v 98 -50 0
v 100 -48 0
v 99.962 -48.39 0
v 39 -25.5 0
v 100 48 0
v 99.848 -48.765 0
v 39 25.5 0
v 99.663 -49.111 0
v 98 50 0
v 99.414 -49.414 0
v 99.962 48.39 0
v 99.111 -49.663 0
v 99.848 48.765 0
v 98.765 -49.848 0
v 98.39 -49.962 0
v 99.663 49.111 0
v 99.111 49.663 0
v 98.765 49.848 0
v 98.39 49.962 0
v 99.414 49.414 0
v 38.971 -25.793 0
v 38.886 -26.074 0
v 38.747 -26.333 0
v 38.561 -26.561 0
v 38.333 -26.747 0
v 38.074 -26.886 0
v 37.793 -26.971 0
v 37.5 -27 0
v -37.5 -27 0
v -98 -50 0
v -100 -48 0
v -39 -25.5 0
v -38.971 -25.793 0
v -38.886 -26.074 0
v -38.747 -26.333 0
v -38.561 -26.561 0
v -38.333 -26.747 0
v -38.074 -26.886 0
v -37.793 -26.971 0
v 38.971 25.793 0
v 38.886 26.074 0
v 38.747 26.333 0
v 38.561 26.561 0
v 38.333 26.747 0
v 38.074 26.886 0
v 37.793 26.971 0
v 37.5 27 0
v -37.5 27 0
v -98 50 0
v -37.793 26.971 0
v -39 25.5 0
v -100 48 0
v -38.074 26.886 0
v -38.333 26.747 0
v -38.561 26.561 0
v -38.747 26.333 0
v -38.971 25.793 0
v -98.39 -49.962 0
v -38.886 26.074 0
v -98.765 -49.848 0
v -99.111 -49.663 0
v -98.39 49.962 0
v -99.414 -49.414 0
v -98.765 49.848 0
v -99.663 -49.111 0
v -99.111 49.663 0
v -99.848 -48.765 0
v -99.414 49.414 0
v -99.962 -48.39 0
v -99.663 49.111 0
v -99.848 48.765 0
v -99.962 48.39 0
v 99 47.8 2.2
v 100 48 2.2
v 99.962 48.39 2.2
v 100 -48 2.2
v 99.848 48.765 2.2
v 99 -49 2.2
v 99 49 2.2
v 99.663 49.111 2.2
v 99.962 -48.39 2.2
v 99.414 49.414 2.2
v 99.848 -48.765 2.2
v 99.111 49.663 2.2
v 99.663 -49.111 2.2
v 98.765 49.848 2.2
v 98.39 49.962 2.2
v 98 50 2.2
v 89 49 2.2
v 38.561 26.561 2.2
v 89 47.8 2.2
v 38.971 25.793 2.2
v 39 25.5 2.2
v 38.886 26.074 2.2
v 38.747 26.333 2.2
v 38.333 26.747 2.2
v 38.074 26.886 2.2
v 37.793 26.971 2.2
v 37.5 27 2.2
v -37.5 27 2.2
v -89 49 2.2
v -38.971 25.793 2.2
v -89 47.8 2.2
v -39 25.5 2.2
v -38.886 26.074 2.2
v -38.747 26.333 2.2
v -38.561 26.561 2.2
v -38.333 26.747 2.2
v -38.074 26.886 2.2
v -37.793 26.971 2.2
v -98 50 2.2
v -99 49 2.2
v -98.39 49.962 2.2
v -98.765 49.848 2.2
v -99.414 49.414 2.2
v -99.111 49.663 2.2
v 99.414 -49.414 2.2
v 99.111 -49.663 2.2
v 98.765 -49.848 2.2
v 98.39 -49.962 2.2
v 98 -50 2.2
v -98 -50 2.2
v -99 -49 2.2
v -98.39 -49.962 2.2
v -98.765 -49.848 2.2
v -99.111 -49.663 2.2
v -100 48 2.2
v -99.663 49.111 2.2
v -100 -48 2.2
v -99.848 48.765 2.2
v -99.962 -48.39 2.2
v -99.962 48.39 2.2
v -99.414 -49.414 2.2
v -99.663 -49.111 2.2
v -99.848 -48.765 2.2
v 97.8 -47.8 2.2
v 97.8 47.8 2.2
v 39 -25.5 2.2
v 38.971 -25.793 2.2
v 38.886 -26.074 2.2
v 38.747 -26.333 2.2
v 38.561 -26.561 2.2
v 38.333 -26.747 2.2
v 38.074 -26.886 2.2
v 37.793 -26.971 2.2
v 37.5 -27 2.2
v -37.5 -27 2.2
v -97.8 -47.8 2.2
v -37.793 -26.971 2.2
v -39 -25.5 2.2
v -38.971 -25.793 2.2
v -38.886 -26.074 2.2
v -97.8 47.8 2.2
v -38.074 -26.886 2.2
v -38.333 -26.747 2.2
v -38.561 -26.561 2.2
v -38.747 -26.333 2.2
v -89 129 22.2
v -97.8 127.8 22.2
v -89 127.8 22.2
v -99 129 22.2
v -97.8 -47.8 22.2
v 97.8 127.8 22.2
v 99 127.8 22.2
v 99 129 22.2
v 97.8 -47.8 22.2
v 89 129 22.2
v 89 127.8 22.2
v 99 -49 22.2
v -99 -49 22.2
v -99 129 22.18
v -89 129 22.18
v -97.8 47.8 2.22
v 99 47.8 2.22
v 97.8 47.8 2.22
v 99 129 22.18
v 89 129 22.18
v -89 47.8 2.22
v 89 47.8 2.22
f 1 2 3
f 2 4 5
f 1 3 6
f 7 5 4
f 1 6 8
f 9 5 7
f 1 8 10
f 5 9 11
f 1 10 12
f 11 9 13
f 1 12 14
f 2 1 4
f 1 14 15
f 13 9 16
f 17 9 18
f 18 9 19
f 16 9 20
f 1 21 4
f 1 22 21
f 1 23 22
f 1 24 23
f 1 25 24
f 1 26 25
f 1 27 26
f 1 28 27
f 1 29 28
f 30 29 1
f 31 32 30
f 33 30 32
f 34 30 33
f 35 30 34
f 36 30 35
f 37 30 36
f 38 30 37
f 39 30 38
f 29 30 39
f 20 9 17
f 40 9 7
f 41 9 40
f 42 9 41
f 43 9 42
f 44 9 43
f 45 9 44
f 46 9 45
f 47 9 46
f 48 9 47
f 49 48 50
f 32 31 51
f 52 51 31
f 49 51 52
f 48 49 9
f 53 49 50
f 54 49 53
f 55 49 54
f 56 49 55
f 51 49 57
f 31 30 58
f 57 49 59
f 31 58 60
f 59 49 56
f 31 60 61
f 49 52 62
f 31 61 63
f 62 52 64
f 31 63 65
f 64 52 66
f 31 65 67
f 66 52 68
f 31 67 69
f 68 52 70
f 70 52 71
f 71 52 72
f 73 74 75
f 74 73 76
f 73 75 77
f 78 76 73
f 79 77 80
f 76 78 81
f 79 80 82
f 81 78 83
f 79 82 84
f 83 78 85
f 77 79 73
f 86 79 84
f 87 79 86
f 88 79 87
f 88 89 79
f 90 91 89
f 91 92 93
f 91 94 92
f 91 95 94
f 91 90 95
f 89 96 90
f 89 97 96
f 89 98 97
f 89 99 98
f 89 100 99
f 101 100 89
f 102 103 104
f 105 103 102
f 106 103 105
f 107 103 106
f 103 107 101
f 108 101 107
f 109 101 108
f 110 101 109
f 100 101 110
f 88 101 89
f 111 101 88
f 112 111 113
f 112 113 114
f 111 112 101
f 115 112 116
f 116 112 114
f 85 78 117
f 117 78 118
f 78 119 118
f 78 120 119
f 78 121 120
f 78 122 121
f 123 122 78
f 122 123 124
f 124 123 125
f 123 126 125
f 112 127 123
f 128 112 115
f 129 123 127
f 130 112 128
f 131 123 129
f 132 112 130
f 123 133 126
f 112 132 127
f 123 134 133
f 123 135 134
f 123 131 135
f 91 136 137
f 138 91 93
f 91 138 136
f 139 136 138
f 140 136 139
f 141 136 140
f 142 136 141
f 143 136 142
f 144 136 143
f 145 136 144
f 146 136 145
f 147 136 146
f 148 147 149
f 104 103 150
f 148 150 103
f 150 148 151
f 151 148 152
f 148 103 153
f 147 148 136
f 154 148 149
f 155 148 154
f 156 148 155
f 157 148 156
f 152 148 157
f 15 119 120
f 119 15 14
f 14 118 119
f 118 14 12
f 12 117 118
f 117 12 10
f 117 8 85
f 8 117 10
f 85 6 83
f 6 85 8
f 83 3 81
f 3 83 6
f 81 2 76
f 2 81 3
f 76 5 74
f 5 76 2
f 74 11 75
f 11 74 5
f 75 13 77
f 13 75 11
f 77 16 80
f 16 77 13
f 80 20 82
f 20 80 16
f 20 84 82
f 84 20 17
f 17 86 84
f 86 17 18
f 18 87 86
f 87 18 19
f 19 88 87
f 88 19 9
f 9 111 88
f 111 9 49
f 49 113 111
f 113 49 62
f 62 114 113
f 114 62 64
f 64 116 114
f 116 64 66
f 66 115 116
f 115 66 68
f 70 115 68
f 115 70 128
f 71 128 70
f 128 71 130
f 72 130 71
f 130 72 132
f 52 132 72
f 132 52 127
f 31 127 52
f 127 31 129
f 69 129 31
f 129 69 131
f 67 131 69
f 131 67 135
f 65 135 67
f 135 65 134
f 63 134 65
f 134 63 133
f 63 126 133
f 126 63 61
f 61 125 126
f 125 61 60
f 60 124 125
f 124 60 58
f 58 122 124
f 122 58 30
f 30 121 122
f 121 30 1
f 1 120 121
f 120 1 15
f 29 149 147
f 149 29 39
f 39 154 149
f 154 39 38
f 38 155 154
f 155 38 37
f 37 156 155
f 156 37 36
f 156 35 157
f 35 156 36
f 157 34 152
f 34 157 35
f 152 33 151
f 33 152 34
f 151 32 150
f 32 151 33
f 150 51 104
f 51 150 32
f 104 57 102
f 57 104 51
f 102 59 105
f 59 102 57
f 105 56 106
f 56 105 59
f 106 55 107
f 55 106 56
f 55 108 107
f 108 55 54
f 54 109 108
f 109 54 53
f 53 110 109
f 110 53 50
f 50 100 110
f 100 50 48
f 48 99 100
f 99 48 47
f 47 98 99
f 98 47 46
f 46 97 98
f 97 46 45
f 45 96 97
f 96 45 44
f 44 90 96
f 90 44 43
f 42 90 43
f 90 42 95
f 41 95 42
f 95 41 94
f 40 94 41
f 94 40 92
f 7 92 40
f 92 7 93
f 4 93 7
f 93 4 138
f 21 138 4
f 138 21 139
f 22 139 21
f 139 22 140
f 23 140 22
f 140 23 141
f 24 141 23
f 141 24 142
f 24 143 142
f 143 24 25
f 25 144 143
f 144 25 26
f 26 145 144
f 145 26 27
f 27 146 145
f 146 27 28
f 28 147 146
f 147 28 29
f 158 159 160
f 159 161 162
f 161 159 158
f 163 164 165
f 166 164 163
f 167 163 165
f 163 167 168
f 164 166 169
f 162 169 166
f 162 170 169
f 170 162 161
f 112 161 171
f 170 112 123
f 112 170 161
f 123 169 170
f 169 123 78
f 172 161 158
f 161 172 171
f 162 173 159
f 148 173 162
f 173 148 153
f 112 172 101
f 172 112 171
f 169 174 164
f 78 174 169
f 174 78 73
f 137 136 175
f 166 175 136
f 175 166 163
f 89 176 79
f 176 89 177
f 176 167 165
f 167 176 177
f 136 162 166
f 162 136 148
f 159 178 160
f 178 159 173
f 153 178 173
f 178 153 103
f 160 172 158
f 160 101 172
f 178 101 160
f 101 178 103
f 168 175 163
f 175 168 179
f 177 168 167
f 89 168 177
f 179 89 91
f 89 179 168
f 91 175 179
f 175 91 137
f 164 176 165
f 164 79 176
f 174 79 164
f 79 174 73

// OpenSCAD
//
// Frontplatte 200 x 100 mm für DFRobot Embedded Thermal Printer V2.0
// MODIFIZIERTE VERSION:
// - Seitenwände bleiben keilförmig
// - die obere schräge Ebene ist NICHT mehr vollflächig
// - stattdessen nur noch zwei schräge Randstege à 10 mm
// - mittlerer Bereich oben bleibt offen
// - Steigung standardmäßig als 15 % statt 15°
// - mittiger Printer-Cutout
// - front-face-down druckbar
//

part = "plate";   // "plate" | "preview"

// =========================
// HAUPTPARAMETER
// =========================

panel_w = 200.0;
panel_h = 100.0;

plate_t = 2.2;
outer_corner_r = 2.0;

rim_inset = 1.0;
rim_t = 1.2;
rim_depth = 20.0;

// Obere Schräge:
// Standard = 15 % Steigung über rim_depth
use_slope_percent = true;
top_mount_slope_percent = 400.0;

// Nur falls du doch Winkel statt Prozent willst:
top_mount_angle_from_front = 15.0;

top_wall_t = rim_t;

// neue schräge Randstege
top_rail_w = 10.0;   // jeweils 1 cm breit

// DFRobot Printer Cutout
printer_install_w = 77.2;
printer_install_h = 53.2;
printer_open_extra_w = 0.8;
printer_open_extra_h = 0.8;

printer_open_w = printer_install_w + printer_open_extra_w;
printer_open_h = printer_install_h + printer_open_extra_h;
printer_cutout_r = 1.5;

// Dummy preview
dummy_body_w = 77.2;
dummy_body_h = 53.2;
dummy_body_d = 42.0;

dummy_bezel_w = 82.1;
dummy_bezel_h = 58.1;
dummy_bezel_t = 2.0;

// =========================
// ABGELEITETE WERTE
// =========================

top_mount_rise = use_slope_percent
    ? rim_depth * top_mount_slope_percent / 100
    : rim_depth * tan(90 - top_mount_angle_from_front);

y_bottom    = -panel_h/2 + rim_inset;
y_top_inner =  panel_h/2 - rim_inset;

// obere schräge Stege
y_front_center = y_top_inner - top_wall_t/2;
y_back_center  = y_front_center + top_mount_rise;

y_front_low  = y_front_center - top_wall_t/2;
y_front_high = y_front_center + top_wall_t/2;
y_back_low   = y_back_center  - top_wall_t/2;
y_back_high  = y_back_center  + top_wall_t/2;

// X-Positionen der Seitenwände
x_left_outer  = -panel_w/2 + rim_inset;
x_right_outer =  panel_w/2 - rim_inset;

// X-Positionen der oberen Randstege
x_left_rail_center  = x_left_outer + top_rail_w/2;
x_right_rail_center = x_right_outer - top_rail_w/2;

// =========================
// 2D-HELFER
// =========================

module rounded_rect_2d(w, h, r) {
    rr = min(r, min(w, h) / 2);
    if (rr <= 0) {
        square([w, h], center = true);
    } else {
        hull() {
            for (x = [-w/2 + rr, w/2 - rr])
                for (y = [-h/2 + rr, h/2 - rr])
                    translate([x, y]) circle(r = rr, $fn = 32);
        }
    }
}

module printer_cutout_2d() {
    rounded_rect_2d(printer_open_w, printer_open_h, printer_cutout_r);
}

// =========================
// FRONTPLATTE
// =========================

module front_plate() {
    linear_extrude(height = plate_t, convexity = 10)
        difference() {
            rounded_rect_2d(panel_w, panel_h, outer_corner_r);
            printer_cutout_2d();
        }
}

// =========================
// SEITENWÄNDE ALS KEILE
// =========================

module side_wall_wedge(x_outer) {
    eps = 0.02;

    front_h = y_top_inner - y_bottom;
    back_h  = y_back_high - y_bottom;

    hull() {
        // vorderer Rechteck-Streifen
        translate([
            x_outer + rim_t/2,
            (y_bottom + y_top_inner)/2,
            plate_t + eps/2
        ])
            cube([rim_t, front_h, eps], center = true);

        // hinterer höherer Rechteck-Streifen
        translate([
            x_outer + rim_t/2,
            (y_bottom + y_back_high)/2,
            plate_t + rim_depth - eps/2
        ])
            cube([rim_t, back_h, eps], center = true);
    }
}

module left_wall() {
    side_wall_wedge(x_left_outer);
}

module right_wall() {
    side_wall_wedge(x_right_outer - rim_t);
}

// =========================
// BODENWAND
// =========================

module bottom_wall() {
    translate([
        -panel_w/2 + rim_inset + rim_t,
        y_bottom,
        plate_t
    ])
        cube([
            panel_w - 2*(rim_inset + rim_t),
            rim_t,
            rim_depth
        ], center = false);
}

// =========================
// OBERE SCHRÄGE RANDSTEGE
// =========================
//
// Keine Vollfläche mehr.
// Nur noch links und rechts je ein 10-mm-Steg.
//

module top_sloped_rail(x_center, rail_w) {
    eps = 0.02;

    hull() {
        // vorderer Streifen direkt an der Rückseite der Frontplatte
        translate([x_center, y_front_center, plate_t + eps/2])
            cube([rail_w, top_wall_t, eps], center = true);

        // hinterer Streifen weiter hinten und höher
        translate([x_center, y_back_center, plate_t + rim_depth - eps/2])
            cube([rail_w, top_wall_t, eps], center = true);
    }
}

module left_top_rail() {
    top_sloped_rail(x_left_rail_center, top_rail_w);
}

module right_top_rail() {
    top_sloped_rail(x_right_rail_center, top_rail_w);
}

// =========================
// PRINTER-CUTOUT 3D
// =========================

module printer_cutout_3d() {
    translate([0, 0, -0.1])
        linear_extrude(height = plate_t + rim_depth + 0.2, convexity = 10)
            printer_cutout_2d();
}

// =========================
// GESAMTTEIL
// =========================

module plate() {
    difference() {
        union() {
            front_plate();
            left_wall();
            right_wall();
            bottom_wall();
            left_top_rail();
            right_top_rail();
        }

        printer_cutout_3d();
    }
}

// =========================
// PREVIEW
// =========================

module dummy_printer() {
    color([0.15, 0.15, 0.15, 0.55])
        union() {
            // Druckerkörper hinter der Platte
            translate([0, 0, plate_t])
                linear_extrude(height = dummy_body_d, convexity = 10)
                    rounded_rect_2d(dummy_body_w, dummy_body_h, 1.0);

            // Frontüberstand vor der Platte
            translate([0, 0, -dummy_bezel_t])
                linear_extrude(height = dummy_bezel_t, convexity = 10)
                    rounded_rect_2d(dummy_bezel_w, dummy_bezel_h, 1.5);
        }
}

module preview() {
    plate();
    dummy_printer();
}

// =========================
// OUTPUT
// =========================

if (part == "preview") {
    preview();
} else {
    plate();
}
